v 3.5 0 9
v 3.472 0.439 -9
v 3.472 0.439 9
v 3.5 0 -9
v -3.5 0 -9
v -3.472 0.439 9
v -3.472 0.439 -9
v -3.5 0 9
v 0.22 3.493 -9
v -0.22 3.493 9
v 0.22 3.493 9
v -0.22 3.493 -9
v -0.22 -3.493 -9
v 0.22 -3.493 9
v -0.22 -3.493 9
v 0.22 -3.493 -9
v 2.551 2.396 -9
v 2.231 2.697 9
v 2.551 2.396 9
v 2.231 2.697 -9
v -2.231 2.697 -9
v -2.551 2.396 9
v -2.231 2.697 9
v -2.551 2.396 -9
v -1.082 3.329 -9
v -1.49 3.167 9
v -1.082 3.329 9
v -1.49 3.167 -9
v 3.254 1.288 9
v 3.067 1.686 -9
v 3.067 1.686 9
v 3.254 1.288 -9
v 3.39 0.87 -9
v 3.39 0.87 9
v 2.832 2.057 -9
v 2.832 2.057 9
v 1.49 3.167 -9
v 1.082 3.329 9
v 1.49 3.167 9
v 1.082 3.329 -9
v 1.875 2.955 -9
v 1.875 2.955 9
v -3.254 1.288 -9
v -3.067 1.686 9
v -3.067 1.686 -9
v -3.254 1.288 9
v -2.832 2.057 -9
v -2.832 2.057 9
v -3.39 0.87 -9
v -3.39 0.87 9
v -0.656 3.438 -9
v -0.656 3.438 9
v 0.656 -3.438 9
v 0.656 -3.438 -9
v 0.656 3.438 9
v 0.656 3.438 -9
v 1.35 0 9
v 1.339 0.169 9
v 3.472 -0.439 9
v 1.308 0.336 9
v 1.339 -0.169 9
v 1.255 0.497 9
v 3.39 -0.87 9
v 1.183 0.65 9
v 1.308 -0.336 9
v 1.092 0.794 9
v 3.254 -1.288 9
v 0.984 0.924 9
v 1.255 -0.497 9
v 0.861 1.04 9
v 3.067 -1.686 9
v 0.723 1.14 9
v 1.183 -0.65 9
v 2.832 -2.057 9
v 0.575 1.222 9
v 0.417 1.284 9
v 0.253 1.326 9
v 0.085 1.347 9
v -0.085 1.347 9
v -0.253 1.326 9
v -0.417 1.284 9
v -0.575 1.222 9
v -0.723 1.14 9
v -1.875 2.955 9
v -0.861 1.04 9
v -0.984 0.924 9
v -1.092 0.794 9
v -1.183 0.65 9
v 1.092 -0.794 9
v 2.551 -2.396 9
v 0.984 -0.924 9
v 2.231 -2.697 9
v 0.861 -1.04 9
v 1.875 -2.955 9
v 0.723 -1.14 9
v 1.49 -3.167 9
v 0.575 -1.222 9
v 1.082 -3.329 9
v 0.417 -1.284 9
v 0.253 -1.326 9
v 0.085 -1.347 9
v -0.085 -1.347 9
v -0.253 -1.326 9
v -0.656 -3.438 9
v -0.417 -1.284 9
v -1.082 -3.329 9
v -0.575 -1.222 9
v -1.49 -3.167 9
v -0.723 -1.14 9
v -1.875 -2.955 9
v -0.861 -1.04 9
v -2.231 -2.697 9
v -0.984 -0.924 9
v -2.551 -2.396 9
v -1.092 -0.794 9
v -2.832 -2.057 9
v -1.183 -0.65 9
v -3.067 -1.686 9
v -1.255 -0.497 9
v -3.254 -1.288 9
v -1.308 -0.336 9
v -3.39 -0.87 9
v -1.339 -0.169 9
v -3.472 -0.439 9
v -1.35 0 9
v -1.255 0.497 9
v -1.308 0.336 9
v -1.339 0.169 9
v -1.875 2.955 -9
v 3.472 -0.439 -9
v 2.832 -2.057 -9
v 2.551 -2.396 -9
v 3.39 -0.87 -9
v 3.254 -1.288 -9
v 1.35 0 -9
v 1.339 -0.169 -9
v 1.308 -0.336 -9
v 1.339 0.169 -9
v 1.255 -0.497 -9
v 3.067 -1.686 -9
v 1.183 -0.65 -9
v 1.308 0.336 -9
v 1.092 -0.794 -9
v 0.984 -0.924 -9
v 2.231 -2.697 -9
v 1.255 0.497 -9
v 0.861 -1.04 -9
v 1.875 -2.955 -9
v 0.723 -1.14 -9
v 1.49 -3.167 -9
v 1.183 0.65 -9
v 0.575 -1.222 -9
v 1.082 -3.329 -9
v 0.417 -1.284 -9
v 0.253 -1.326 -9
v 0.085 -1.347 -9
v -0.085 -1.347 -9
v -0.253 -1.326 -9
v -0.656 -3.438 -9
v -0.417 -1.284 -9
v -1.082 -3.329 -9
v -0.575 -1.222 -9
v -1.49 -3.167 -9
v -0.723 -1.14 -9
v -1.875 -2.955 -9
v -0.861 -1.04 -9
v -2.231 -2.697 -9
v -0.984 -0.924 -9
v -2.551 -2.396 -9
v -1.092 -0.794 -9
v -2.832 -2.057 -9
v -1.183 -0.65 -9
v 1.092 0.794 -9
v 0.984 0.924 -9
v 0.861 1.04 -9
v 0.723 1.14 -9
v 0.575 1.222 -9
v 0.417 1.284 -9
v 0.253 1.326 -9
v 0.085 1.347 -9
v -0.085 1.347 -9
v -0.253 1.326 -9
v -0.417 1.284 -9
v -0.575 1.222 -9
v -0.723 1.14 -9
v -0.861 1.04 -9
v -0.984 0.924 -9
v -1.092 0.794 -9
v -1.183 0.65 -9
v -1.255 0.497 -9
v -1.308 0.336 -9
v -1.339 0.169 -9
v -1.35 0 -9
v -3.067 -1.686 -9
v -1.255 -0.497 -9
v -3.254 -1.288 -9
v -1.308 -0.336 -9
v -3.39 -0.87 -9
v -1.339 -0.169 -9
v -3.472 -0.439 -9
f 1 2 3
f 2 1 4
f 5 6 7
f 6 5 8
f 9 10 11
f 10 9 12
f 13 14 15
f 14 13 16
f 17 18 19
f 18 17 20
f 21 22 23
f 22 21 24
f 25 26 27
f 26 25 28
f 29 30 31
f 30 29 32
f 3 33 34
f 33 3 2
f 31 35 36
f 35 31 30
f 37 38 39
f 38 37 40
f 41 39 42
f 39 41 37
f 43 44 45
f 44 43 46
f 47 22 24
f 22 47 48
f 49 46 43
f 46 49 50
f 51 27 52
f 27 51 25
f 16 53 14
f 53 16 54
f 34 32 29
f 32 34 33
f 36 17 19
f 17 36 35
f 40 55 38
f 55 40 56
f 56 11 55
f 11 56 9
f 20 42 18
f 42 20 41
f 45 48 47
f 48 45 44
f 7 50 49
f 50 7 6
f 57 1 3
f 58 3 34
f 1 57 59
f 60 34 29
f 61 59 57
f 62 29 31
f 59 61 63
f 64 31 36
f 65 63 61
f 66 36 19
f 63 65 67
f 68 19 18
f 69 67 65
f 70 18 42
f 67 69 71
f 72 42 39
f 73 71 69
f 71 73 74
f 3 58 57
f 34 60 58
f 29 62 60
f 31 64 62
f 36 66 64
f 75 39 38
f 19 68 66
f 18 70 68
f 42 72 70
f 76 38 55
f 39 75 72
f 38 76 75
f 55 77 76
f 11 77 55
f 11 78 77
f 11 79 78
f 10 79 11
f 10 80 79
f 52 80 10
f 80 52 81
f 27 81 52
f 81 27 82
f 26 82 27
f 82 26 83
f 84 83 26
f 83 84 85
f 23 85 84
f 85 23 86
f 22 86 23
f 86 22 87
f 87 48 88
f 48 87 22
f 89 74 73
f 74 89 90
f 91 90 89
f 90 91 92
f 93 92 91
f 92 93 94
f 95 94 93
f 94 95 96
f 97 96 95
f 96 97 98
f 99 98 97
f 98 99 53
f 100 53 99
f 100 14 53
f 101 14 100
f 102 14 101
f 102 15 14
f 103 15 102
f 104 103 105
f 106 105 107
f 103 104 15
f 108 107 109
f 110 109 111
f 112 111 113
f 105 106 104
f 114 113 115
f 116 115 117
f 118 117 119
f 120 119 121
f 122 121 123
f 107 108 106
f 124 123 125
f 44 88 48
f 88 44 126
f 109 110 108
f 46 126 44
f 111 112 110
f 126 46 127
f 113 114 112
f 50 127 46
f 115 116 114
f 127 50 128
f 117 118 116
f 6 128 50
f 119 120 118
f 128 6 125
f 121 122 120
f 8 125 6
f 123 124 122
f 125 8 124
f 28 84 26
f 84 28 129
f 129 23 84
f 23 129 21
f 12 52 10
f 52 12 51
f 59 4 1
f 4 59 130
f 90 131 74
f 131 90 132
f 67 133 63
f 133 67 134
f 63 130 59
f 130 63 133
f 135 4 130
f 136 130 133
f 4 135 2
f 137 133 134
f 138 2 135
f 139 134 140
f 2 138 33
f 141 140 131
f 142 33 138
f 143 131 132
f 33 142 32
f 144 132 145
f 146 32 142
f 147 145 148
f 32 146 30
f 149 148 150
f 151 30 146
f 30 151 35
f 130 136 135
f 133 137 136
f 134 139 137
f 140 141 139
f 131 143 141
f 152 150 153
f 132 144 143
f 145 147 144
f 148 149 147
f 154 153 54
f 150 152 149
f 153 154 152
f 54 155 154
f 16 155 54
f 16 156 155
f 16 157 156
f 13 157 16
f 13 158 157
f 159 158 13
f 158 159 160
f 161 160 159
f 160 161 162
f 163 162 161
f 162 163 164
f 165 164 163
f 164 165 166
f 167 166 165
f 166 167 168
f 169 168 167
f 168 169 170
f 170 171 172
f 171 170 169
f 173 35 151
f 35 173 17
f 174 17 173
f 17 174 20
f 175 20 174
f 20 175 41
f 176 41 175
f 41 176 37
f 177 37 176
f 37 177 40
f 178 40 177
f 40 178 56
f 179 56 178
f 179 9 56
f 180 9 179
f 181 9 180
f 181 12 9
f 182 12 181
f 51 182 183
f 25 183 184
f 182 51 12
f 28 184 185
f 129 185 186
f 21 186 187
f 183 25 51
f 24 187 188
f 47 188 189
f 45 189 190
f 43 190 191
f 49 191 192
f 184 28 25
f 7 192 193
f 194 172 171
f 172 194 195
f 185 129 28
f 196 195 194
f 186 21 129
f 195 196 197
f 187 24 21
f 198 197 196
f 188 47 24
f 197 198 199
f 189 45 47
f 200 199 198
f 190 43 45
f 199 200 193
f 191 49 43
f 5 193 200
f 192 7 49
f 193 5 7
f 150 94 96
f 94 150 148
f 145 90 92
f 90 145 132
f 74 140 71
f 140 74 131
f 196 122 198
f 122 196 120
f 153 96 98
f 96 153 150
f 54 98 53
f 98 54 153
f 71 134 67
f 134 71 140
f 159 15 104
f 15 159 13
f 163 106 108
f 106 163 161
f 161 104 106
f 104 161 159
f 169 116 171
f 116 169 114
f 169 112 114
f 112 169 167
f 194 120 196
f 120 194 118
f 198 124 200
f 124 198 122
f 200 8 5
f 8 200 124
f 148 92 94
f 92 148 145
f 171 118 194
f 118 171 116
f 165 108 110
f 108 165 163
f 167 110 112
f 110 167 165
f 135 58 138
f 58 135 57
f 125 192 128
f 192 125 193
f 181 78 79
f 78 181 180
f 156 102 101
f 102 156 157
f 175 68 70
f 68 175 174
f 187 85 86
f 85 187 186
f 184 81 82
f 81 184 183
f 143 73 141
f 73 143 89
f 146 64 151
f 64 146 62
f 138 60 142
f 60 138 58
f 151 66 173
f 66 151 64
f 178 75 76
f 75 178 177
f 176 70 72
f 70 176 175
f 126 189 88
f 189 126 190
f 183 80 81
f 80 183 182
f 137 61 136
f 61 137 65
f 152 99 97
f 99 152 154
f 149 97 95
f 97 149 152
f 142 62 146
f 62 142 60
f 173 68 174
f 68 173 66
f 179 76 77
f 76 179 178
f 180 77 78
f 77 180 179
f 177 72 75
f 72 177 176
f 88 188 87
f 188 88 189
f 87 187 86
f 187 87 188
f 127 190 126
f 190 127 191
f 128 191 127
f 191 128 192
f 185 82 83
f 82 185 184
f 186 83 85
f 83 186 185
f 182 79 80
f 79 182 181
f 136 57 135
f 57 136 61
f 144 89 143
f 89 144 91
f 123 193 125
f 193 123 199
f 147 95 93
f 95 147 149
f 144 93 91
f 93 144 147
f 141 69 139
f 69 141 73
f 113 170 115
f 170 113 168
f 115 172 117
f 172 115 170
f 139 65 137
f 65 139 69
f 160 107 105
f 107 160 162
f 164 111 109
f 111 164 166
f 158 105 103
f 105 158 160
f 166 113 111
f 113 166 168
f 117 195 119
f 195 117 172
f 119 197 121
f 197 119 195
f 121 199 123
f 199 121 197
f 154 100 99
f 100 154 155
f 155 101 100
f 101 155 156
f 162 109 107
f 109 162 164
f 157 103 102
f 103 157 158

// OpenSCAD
$fn = 50;


difference() {
	union() {
		translate(v = [0, 0, -9.0000000000]) {
			cylinder(h = 18, r = 3.5000000000);
		}
	}
	union() {
		translate(v = [0, 0, -100.0000000000]) {
			cylinder(h = 200, r = 1.3500000000);
		}
	}
}
